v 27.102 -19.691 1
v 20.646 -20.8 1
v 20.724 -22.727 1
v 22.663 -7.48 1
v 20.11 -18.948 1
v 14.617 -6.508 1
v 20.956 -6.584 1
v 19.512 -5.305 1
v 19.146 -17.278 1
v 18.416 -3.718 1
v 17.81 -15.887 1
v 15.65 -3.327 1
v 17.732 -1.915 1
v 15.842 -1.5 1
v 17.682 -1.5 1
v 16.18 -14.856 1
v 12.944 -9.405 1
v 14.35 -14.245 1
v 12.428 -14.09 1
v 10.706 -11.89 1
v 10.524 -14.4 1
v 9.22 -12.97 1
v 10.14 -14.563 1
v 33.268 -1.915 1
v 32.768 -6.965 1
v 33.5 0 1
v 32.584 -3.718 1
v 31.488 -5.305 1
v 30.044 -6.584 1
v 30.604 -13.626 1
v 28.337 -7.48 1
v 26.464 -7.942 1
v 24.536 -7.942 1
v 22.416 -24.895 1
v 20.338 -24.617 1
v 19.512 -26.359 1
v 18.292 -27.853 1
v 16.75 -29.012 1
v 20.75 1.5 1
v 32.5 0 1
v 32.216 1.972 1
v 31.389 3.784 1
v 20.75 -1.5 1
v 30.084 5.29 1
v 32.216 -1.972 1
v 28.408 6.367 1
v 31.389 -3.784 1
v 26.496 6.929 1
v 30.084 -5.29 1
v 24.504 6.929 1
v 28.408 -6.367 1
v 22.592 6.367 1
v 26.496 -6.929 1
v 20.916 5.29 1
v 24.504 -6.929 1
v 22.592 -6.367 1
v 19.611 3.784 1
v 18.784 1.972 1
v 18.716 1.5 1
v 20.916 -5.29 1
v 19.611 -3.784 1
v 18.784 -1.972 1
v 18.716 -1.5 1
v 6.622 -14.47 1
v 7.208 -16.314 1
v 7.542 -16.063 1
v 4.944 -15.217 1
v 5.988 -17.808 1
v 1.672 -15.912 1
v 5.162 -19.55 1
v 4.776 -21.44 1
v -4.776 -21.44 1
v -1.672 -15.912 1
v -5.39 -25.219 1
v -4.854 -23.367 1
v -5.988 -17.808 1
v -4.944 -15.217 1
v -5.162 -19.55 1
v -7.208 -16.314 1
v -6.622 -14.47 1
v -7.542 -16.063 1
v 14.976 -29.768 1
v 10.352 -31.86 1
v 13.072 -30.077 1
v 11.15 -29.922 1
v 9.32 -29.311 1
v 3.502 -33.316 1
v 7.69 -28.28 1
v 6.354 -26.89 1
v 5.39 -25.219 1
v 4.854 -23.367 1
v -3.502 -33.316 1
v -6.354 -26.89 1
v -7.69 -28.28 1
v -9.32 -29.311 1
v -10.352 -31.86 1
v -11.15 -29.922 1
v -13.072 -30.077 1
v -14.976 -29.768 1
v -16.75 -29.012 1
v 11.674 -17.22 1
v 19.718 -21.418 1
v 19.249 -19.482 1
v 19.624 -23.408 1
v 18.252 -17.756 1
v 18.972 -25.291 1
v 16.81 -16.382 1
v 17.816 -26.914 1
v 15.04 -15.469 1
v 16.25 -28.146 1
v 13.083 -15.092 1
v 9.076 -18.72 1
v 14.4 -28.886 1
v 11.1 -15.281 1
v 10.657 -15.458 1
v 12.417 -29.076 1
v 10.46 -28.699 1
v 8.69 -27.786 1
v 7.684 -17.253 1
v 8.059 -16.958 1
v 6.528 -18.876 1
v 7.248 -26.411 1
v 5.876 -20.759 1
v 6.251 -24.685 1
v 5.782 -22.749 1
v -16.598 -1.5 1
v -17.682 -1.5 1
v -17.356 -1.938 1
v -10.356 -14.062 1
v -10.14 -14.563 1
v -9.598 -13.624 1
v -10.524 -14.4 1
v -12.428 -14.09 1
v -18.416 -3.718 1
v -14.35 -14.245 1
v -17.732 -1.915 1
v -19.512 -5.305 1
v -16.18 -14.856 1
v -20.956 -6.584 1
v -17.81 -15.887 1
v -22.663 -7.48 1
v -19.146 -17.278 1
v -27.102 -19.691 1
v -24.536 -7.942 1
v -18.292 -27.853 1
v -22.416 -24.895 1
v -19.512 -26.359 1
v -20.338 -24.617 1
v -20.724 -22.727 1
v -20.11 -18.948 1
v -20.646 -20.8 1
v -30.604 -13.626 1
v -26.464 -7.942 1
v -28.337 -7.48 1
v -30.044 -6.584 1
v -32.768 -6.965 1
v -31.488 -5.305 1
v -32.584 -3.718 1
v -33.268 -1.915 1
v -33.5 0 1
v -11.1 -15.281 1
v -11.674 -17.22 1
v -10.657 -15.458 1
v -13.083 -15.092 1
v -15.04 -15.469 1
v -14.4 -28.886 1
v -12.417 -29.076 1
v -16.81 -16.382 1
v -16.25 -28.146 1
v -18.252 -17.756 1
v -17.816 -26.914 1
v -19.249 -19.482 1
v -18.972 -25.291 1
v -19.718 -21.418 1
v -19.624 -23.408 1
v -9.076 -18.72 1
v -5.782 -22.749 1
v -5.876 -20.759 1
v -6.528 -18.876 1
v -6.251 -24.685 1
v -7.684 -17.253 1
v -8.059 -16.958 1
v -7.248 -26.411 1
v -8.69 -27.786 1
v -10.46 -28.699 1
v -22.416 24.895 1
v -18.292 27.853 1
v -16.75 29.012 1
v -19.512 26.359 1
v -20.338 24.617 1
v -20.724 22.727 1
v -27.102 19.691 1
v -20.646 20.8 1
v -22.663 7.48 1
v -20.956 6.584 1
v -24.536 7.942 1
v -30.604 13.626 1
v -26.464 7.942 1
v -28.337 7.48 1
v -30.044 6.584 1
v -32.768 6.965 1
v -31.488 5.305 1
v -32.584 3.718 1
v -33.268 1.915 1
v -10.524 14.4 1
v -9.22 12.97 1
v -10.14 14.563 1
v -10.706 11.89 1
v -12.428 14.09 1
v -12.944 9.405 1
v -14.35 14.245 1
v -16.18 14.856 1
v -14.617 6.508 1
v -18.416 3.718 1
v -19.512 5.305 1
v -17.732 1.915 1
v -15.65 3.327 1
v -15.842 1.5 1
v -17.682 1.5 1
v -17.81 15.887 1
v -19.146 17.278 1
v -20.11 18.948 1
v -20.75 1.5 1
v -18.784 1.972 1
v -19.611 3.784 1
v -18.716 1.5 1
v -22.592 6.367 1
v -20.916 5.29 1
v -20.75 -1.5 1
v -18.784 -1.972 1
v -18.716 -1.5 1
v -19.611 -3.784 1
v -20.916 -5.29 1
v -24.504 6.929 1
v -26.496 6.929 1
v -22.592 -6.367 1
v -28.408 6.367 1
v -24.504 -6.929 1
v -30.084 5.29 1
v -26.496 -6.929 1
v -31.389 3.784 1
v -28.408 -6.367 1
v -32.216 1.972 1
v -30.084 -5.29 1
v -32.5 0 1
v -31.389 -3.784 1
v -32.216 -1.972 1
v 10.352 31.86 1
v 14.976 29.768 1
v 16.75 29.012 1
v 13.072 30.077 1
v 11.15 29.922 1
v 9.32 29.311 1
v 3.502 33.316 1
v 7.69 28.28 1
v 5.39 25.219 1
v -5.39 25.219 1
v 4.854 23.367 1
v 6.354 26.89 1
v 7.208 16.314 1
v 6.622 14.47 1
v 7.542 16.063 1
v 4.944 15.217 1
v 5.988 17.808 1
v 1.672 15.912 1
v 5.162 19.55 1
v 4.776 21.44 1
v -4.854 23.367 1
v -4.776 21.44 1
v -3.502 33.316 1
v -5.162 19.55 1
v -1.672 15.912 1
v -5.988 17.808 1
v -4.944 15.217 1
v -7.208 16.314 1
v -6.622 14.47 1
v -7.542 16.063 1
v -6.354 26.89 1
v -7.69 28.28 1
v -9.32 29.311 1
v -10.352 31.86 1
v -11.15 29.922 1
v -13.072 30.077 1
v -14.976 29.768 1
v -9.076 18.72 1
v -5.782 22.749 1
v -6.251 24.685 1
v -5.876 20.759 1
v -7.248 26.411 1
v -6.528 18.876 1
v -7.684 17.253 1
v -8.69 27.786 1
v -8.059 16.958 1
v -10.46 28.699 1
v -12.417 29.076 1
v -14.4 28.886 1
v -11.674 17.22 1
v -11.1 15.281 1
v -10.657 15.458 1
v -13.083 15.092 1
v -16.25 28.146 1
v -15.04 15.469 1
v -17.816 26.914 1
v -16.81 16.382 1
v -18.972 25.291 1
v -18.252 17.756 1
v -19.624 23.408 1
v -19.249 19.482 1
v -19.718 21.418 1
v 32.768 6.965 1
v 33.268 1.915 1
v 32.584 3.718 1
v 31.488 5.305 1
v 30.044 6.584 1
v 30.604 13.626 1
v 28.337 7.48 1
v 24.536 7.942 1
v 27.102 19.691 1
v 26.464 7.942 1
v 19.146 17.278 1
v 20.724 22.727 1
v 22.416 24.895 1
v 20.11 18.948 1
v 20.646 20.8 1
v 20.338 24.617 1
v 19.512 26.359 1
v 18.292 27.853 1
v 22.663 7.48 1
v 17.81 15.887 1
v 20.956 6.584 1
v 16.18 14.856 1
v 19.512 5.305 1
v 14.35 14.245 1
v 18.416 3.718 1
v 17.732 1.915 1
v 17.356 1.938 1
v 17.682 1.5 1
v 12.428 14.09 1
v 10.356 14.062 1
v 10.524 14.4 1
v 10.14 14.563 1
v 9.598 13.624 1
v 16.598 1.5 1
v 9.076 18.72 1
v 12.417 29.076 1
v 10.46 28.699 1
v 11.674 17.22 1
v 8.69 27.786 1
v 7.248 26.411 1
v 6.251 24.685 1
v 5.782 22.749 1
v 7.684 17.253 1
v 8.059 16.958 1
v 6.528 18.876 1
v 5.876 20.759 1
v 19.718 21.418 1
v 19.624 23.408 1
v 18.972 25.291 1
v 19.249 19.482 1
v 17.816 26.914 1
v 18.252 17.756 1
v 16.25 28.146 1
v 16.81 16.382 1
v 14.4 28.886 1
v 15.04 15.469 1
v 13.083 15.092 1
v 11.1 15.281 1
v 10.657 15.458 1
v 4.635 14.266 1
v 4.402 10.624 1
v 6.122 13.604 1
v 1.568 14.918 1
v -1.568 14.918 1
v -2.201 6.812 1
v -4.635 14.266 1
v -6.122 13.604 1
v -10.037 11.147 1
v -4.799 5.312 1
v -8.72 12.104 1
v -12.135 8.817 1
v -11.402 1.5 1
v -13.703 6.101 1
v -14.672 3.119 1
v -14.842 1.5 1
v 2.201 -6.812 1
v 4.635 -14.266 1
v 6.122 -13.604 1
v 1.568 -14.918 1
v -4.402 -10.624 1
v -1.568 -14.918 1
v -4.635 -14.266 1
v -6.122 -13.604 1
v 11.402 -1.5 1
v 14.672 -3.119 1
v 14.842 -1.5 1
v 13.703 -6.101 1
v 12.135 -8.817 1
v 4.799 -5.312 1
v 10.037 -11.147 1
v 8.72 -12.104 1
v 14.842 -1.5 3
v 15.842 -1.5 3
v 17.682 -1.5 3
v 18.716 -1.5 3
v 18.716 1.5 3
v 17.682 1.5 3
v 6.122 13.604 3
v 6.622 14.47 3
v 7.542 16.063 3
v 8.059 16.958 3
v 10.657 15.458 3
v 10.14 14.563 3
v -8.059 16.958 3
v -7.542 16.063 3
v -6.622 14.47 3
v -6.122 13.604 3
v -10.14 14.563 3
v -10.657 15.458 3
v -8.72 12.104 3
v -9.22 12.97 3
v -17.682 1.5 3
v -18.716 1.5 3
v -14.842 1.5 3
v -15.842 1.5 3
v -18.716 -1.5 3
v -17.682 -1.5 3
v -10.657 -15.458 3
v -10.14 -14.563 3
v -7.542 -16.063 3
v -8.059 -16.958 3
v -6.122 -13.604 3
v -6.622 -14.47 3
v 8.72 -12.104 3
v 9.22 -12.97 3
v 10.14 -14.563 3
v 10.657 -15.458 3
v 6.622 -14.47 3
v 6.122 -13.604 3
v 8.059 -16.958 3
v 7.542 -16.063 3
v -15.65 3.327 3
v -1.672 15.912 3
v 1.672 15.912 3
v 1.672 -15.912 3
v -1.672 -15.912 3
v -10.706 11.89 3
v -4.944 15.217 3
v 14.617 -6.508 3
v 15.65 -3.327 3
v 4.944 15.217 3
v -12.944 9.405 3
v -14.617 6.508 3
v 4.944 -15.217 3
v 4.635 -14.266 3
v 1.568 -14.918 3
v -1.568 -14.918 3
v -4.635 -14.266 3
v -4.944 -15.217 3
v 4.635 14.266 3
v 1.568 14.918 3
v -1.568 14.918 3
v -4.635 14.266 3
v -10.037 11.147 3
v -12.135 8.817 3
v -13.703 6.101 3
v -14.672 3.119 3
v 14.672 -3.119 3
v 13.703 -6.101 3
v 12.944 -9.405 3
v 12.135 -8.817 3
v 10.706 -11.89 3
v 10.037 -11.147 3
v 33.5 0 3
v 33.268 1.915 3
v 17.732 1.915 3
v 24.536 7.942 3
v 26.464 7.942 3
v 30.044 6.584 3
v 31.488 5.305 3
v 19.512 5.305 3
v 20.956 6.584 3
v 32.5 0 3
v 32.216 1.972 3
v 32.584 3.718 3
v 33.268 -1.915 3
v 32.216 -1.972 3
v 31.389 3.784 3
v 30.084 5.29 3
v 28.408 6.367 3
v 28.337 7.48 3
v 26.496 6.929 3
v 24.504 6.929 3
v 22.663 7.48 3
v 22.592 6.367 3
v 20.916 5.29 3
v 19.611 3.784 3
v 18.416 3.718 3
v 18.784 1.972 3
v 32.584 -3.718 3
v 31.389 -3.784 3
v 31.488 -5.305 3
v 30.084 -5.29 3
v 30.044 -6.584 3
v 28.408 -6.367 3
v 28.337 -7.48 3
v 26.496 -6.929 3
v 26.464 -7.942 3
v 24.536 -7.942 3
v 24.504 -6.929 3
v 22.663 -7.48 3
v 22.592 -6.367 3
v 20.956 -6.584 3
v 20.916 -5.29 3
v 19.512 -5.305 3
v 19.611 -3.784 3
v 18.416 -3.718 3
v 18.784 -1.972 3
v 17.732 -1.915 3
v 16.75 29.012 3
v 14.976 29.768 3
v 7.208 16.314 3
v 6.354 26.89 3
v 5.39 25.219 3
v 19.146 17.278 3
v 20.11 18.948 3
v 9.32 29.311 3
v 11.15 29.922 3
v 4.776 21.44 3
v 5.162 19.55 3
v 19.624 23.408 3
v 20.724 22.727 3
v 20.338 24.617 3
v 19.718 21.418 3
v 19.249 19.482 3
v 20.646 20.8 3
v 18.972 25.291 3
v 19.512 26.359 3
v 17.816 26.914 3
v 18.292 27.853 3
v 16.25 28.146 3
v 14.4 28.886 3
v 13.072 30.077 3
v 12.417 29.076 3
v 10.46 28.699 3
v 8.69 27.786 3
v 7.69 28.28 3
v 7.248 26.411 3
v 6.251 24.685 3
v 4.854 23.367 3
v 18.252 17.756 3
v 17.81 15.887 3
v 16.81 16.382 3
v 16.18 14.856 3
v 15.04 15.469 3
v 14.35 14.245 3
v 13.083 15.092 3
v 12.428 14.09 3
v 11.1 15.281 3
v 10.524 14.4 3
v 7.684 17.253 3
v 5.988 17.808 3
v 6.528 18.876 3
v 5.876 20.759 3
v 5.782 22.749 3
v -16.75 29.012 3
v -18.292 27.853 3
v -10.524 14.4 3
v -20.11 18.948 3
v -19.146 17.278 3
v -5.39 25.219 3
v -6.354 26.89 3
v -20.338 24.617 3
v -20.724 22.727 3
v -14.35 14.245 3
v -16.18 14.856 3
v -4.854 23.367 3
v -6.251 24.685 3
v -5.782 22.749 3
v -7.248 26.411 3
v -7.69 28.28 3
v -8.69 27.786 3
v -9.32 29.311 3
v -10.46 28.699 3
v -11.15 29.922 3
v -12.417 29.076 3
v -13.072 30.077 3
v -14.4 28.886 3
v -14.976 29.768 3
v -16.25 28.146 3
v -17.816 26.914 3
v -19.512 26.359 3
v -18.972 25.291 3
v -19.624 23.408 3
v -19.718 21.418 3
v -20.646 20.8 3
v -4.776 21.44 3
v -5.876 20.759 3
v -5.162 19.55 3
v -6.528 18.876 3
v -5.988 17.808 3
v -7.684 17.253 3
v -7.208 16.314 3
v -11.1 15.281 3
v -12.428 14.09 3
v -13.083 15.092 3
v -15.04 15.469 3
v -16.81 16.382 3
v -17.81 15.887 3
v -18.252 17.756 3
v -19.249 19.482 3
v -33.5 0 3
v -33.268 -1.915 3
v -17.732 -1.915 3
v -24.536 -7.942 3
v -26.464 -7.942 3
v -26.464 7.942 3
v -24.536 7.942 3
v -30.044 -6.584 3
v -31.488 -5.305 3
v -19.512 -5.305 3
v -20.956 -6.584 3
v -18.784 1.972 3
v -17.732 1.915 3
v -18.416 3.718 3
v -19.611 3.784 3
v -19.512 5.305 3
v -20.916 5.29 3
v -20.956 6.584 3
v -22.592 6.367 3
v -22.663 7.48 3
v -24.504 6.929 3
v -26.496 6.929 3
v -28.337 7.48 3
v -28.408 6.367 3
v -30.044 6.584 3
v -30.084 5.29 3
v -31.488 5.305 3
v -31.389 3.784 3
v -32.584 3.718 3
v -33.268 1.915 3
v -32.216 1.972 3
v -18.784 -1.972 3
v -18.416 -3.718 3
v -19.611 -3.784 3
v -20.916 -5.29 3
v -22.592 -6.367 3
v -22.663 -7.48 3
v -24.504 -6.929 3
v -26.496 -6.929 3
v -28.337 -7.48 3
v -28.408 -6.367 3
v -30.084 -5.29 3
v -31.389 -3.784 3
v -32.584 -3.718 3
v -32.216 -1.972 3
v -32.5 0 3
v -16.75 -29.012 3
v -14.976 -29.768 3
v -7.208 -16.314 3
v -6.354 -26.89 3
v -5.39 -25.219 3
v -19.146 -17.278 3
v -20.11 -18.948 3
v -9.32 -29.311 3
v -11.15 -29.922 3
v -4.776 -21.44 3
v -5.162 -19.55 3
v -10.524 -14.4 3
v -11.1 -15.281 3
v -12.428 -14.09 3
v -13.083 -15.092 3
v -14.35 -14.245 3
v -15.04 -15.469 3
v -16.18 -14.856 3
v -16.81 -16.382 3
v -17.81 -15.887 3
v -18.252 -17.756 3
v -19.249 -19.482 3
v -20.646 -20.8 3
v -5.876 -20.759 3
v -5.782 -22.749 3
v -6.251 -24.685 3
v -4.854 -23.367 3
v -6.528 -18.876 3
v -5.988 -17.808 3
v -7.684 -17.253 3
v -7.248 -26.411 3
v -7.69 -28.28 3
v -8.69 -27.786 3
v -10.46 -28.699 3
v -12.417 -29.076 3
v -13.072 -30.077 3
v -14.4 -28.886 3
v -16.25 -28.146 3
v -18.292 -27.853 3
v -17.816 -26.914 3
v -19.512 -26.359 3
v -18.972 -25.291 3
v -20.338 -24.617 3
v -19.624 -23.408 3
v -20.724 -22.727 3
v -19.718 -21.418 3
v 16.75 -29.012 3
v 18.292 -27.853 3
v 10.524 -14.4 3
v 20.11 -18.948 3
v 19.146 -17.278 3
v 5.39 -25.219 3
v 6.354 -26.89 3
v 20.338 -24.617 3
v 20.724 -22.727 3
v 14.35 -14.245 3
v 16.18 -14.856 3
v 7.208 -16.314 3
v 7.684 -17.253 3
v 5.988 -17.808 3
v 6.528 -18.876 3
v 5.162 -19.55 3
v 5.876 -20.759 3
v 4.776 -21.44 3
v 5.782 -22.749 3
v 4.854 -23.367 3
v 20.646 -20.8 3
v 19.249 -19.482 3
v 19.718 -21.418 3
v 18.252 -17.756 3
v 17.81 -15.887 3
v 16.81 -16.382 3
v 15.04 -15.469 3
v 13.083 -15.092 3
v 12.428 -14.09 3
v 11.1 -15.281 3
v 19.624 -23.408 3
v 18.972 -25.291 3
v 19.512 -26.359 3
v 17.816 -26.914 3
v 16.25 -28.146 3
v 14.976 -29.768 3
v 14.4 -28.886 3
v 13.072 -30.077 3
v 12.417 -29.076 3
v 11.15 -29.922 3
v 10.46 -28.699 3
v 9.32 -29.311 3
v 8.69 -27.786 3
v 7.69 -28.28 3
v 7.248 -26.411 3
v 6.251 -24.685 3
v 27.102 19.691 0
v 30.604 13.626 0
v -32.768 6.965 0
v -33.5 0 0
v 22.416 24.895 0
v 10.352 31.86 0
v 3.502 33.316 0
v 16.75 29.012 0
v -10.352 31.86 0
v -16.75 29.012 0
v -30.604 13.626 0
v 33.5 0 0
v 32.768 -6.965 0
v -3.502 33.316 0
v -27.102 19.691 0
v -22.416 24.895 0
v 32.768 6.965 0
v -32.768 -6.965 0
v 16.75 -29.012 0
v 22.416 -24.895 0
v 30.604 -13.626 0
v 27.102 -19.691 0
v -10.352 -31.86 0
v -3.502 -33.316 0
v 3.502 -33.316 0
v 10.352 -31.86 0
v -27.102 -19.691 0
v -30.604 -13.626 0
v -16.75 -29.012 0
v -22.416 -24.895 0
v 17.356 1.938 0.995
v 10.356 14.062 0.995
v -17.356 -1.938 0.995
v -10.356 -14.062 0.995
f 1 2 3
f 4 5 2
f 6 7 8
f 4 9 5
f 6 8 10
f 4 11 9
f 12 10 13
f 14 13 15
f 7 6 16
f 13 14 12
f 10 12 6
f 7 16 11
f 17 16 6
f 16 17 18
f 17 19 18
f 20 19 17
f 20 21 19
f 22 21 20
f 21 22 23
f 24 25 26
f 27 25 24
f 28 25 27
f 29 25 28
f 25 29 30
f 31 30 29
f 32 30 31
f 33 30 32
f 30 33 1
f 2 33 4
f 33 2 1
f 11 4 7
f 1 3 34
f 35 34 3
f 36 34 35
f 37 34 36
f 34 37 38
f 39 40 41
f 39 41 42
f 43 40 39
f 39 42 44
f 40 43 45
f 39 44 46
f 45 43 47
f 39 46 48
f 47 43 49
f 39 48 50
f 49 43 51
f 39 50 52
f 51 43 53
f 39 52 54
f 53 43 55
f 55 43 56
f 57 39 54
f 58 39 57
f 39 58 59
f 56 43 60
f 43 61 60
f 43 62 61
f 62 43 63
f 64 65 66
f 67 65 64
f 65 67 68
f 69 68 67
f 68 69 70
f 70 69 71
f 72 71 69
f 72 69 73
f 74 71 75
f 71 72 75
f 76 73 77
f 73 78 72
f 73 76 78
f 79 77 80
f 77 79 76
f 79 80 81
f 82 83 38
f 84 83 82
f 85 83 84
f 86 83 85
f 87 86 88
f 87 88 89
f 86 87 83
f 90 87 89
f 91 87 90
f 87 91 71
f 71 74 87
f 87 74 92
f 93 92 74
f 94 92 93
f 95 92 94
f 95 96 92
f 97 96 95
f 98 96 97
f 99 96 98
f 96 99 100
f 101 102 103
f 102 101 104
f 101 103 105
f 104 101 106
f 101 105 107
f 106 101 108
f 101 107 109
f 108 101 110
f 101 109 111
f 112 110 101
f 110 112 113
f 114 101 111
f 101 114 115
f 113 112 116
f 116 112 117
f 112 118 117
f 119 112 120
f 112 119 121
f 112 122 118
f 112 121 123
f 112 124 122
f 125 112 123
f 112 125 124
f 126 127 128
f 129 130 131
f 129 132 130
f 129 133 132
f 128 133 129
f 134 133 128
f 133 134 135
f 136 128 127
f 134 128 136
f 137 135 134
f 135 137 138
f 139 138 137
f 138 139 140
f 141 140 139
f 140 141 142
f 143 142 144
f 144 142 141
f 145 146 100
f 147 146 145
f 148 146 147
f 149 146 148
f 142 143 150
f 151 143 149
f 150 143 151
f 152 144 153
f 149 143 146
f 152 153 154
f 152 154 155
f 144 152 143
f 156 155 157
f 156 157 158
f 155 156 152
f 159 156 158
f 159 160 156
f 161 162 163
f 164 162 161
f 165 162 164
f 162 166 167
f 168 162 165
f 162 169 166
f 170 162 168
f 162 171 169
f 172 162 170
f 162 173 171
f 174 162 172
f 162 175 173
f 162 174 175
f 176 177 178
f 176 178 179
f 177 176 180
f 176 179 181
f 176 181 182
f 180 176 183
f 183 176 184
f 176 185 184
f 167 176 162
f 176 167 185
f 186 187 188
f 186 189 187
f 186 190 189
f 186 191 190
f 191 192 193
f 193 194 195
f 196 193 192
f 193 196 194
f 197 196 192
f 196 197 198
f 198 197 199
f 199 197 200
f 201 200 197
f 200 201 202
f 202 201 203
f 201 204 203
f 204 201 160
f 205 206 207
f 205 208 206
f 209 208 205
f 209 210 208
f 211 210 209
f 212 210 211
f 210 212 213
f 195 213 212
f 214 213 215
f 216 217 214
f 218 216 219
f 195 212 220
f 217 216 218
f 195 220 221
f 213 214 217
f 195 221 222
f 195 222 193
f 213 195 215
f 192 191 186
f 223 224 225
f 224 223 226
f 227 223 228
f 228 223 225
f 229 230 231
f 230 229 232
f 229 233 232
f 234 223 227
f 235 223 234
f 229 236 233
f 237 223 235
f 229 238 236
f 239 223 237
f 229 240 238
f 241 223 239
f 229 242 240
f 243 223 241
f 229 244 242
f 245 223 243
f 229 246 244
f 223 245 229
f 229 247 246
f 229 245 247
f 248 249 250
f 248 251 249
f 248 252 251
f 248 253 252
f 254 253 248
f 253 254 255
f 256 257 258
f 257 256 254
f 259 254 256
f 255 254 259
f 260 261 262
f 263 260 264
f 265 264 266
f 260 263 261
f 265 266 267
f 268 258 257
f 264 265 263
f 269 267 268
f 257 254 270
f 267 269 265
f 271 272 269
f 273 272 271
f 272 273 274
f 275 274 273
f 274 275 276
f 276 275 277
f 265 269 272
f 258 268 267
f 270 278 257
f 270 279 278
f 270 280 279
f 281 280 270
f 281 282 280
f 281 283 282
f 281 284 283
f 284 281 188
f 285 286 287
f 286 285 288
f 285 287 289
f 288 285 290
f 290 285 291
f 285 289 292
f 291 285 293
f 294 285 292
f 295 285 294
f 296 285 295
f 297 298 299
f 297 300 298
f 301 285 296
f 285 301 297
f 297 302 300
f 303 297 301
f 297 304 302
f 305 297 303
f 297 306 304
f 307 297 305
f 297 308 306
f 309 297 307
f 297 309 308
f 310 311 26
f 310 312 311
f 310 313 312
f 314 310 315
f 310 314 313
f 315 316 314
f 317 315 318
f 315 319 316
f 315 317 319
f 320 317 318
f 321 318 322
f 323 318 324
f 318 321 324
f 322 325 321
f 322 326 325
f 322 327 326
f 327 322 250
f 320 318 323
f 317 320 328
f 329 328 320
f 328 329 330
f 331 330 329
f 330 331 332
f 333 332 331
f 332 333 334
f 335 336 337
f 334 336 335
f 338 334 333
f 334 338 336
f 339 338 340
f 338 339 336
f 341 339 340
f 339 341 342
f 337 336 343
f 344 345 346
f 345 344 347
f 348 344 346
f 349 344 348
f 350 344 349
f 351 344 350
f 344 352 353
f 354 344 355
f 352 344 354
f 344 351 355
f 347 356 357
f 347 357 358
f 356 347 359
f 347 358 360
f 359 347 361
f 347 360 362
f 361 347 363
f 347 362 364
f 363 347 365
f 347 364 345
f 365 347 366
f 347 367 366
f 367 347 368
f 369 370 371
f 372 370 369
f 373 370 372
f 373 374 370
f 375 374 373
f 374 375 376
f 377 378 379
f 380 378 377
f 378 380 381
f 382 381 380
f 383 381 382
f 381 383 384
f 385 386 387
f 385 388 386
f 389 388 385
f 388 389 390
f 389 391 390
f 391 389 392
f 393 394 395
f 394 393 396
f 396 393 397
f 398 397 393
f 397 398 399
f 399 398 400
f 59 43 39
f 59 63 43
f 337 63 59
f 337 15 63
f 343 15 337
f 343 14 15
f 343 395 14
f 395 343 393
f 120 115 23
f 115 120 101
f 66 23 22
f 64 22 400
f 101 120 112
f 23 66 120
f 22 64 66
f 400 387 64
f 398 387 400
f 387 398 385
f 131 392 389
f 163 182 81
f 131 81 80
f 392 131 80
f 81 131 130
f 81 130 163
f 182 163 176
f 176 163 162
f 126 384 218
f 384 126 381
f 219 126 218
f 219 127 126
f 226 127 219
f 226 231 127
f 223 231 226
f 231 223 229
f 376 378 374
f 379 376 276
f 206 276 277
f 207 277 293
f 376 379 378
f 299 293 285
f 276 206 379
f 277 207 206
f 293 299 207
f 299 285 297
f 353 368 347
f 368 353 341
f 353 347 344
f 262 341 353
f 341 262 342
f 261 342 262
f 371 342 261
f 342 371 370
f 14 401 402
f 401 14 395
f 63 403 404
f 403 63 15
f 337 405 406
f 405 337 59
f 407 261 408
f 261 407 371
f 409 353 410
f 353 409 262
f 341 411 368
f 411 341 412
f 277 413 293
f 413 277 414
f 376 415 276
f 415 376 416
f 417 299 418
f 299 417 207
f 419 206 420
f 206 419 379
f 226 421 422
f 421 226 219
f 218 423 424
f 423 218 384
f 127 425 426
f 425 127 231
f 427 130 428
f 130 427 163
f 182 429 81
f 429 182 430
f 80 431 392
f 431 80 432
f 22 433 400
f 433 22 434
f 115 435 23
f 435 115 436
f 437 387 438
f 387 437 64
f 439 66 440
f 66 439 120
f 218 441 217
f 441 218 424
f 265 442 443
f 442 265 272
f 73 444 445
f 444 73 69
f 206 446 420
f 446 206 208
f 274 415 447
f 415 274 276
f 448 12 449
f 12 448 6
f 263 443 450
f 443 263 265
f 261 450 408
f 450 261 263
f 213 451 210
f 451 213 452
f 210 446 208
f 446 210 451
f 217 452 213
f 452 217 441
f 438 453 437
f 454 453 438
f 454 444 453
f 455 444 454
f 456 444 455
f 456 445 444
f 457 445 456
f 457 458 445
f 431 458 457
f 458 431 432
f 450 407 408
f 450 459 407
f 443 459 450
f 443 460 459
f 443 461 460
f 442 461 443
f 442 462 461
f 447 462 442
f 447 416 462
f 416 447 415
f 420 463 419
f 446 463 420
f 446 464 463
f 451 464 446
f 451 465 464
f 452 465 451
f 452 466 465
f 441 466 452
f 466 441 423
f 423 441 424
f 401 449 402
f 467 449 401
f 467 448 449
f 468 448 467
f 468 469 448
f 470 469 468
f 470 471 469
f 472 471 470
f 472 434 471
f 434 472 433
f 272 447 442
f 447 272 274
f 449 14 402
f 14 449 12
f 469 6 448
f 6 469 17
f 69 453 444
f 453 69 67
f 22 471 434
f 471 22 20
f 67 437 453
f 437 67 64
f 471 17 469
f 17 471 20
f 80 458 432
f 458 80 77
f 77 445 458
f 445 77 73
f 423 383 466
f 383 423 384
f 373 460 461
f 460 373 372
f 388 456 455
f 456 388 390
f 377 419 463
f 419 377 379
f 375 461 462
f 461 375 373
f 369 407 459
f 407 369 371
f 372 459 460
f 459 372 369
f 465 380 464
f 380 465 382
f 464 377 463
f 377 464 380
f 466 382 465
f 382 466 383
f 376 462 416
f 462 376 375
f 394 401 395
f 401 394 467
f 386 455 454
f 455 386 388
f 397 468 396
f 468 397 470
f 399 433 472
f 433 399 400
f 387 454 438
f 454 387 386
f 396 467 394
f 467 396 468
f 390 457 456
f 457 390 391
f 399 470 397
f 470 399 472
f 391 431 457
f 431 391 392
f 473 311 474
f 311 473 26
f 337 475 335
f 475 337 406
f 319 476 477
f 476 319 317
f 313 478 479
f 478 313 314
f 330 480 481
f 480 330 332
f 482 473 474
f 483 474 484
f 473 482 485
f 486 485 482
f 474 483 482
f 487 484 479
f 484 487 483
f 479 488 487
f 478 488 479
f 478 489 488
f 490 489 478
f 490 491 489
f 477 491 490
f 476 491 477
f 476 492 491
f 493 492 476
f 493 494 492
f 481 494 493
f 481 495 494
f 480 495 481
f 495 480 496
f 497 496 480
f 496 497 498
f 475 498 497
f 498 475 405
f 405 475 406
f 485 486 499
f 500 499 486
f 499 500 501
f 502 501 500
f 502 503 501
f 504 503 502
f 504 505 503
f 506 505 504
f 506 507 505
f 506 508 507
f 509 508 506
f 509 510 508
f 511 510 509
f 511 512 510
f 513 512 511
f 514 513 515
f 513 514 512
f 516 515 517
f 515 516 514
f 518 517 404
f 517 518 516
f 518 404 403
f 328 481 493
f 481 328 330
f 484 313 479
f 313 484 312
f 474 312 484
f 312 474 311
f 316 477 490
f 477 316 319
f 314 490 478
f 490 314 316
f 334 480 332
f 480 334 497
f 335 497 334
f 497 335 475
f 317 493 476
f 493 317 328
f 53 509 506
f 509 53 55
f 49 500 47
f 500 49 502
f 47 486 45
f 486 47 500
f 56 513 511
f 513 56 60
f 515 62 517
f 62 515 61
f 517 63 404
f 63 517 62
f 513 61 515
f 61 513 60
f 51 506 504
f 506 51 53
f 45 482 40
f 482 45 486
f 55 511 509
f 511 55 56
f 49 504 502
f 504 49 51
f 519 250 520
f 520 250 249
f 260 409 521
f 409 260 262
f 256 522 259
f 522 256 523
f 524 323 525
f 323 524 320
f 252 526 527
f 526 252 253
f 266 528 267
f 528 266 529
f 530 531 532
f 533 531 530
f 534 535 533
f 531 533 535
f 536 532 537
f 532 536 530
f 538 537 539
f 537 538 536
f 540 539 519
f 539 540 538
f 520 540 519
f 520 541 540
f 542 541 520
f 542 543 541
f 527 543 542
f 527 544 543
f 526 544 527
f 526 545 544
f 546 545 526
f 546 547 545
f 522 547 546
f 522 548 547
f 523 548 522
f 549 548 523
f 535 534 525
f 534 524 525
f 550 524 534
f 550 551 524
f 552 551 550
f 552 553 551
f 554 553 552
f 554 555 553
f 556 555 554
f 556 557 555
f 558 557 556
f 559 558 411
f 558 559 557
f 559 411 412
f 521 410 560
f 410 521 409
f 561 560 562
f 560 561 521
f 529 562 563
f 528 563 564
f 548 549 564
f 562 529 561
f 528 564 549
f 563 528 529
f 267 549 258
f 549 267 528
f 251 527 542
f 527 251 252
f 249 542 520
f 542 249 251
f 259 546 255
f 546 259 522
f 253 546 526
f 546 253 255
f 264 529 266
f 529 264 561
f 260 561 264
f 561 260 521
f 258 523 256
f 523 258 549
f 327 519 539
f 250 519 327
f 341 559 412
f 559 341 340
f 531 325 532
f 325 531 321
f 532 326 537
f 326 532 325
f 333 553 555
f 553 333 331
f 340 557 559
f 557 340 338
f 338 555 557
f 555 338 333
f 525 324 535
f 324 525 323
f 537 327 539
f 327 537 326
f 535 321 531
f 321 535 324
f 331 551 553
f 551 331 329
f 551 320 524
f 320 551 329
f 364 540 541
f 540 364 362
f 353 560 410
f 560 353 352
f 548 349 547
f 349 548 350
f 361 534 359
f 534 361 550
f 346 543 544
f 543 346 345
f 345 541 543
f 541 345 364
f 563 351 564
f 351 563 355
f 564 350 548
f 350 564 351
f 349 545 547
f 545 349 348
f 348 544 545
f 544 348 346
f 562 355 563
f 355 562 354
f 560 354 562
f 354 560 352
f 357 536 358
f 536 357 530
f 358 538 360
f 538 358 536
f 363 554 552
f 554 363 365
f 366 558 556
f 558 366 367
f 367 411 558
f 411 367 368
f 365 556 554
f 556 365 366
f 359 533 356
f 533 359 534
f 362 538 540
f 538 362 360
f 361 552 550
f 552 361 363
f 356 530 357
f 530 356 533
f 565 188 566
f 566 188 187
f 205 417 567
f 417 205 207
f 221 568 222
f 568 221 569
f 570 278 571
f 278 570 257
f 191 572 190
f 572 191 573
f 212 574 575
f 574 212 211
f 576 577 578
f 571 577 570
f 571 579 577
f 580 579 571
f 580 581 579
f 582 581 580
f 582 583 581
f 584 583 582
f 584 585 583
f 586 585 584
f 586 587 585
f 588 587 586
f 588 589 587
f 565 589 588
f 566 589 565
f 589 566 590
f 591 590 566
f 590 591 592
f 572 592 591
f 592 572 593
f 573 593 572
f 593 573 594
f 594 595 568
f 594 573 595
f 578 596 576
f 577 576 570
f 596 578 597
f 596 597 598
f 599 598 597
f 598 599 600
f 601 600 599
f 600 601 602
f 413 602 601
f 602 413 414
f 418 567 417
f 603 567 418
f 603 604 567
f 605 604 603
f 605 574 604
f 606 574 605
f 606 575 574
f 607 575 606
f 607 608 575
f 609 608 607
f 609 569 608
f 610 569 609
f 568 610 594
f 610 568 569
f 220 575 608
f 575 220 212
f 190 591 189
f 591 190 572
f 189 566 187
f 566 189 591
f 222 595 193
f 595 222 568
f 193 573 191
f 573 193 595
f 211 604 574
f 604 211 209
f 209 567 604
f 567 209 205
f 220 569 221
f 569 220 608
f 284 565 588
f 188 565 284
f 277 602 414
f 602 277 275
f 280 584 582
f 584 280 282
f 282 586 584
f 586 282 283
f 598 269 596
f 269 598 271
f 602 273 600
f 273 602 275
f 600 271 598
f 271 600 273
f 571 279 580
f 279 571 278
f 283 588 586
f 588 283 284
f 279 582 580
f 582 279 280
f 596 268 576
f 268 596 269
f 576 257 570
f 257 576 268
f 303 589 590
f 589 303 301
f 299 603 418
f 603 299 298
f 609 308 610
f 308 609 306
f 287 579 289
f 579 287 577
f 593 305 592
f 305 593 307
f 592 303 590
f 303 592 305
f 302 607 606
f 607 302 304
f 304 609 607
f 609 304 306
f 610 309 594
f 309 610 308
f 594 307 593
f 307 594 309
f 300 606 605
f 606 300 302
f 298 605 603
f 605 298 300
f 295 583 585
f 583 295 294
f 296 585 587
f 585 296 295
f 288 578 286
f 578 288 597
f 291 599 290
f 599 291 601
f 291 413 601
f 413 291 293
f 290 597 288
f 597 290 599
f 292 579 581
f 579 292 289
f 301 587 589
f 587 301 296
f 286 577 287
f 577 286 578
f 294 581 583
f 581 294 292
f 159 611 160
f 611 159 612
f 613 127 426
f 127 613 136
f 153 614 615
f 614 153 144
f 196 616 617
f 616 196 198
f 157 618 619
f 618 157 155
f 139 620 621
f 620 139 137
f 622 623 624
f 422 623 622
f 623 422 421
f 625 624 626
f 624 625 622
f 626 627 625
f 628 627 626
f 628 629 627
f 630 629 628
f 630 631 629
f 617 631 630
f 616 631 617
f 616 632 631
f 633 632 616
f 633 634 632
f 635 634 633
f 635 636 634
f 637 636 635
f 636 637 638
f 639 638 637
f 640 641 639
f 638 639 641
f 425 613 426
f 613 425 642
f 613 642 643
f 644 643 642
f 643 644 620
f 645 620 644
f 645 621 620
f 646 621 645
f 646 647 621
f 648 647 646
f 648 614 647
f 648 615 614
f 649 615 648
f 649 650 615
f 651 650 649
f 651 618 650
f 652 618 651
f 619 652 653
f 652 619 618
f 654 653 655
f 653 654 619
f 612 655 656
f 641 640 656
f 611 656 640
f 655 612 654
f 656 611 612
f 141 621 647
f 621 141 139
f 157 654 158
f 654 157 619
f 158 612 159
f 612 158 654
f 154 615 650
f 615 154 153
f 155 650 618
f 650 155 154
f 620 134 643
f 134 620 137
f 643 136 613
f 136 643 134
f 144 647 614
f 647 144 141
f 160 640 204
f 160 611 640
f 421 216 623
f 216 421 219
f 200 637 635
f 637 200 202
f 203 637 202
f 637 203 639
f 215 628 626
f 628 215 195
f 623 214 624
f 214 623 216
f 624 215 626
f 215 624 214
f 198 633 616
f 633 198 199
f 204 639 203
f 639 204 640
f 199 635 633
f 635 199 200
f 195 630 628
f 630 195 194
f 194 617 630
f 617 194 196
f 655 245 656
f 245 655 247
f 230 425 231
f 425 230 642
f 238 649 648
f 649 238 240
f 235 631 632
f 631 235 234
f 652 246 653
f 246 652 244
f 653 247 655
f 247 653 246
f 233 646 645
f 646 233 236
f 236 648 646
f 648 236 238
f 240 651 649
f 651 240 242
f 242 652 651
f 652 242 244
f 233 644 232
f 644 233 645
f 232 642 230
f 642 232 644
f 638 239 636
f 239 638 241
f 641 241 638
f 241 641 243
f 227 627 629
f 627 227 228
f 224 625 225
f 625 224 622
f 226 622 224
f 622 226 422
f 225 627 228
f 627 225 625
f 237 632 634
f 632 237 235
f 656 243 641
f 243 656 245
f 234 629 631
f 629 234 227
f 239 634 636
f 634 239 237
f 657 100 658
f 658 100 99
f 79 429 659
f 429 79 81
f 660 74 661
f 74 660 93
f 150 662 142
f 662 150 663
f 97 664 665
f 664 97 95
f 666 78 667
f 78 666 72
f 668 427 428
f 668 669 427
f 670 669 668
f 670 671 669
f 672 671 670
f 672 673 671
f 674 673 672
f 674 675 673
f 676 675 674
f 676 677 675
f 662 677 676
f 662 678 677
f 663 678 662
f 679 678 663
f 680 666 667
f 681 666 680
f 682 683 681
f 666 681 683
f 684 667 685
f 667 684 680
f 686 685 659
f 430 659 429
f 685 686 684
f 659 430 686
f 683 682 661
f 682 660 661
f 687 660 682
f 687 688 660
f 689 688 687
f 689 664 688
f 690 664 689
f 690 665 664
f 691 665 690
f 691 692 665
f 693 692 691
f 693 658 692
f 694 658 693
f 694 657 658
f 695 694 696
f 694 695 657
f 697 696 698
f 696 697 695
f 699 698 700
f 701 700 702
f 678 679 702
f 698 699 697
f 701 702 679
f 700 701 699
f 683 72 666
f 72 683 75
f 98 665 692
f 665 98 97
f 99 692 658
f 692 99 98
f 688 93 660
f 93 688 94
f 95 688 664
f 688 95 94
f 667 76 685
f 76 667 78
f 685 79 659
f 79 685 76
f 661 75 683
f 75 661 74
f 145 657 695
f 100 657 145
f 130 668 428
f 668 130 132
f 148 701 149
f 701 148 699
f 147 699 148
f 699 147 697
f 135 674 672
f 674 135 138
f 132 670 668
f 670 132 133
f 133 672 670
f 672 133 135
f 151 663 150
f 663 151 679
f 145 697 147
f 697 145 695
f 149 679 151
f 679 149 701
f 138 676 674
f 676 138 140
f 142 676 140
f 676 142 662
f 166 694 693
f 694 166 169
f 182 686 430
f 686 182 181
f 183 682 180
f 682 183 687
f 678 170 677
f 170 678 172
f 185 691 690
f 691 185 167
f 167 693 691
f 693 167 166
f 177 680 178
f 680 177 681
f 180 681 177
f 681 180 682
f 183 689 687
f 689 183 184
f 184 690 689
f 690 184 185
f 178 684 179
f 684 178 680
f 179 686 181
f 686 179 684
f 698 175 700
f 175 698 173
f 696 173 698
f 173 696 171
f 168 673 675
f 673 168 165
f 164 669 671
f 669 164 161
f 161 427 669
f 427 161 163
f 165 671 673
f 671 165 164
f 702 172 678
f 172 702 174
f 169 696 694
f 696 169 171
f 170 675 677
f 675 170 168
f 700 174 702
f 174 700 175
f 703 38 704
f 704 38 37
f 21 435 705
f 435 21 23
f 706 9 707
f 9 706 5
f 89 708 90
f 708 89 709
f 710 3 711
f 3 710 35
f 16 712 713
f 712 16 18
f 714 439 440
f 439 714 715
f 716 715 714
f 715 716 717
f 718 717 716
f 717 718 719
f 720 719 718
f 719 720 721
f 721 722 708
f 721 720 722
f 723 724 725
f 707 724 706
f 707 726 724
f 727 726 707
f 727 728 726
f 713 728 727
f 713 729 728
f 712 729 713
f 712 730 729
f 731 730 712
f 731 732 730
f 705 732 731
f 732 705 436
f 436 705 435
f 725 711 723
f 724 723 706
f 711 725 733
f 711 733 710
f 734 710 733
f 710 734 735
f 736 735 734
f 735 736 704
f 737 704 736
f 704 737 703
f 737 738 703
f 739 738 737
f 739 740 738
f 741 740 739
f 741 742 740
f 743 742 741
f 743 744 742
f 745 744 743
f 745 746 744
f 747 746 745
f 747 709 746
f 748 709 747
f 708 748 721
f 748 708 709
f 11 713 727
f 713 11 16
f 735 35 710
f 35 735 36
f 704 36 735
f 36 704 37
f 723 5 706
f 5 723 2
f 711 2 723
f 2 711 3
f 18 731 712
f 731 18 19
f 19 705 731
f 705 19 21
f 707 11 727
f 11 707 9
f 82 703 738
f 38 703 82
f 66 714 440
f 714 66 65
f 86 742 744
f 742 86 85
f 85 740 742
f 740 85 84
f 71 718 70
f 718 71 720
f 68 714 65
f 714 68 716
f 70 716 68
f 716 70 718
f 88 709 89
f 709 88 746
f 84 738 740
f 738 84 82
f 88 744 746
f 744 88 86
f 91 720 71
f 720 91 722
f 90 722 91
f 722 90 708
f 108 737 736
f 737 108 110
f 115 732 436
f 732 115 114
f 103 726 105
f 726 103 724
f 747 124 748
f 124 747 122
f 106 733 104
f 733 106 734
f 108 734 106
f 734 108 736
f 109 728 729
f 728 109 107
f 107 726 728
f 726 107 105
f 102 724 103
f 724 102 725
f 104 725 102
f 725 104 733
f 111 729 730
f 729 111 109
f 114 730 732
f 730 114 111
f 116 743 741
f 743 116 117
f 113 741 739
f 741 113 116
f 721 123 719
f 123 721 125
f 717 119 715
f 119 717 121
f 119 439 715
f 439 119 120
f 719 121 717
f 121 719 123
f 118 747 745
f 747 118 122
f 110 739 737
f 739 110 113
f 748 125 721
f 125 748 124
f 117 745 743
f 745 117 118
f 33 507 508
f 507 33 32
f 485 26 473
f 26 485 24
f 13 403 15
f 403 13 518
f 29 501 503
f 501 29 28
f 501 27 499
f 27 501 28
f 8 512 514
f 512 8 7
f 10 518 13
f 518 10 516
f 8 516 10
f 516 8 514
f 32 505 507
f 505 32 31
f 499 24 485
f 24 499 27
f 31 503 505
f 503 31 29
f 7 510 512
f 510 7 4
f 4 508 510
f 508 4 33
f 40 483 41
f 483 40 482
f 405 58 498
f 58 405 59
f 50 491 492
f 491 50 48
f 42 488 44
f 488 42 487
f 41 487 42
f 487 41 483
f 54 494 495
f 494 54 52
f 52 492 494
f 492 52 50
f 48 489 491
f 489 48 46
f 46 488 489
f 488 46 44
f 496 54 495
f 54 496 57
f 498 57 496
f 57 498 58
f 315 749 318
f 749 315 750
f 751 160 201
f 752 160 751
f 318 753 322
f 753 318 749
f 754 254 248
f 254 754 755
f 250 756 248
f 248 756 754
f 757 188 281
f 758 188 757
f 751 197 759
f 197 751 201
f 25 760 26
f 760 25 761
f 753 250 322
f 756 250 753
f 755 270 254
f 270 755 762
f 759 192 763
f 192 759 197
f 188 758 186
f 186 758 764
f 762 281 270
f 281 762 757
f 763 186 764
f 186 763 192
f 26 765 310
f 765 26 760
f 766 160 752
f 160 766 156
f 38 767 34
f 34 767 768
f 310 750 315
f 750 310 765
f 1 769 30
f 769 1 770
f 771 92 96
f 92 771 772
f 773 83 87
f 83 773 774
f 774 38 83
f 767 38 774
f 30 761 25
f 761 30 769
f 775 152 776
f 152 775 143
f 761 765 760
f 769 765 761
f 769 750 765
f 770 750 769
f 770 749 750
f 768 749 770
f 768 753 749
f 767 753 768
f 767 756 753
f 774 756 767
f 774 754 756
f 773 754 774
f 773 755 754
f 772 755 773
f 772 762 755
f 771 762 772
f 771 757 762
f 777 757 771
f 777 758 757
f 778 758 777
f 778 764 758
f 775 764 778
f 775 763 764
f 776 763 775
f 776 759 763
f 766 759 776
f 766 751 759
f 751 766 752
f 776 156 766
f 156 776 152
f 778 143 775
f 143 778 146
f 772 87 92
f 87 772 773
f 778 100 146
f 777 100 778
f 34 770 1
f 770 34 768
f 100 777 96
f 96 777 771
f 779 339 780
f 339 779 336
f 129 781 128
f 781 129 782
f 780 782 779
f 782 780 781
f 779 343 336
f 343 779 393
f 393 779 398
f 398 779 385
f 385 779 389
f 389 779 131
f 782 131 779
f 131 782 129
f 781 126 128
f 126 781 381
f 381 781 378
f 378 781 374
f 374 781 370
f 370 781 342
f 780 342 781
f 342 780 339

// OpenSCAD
/********** MODULES **************/
module gemma(){
    color("Black")
    cylinder(r = 14, h = 7);
}

module gemma_hole(){
   translate([0,0,1]){
        difference(){
            cylinder(r = 16, h = 2);
            cylinder(r = 15, h = 2.01);
        }
    }
}

module board(){
       cylinder(r = 33.5, h = 1);
       
    
}

module snap(){
    color("Grey")
    cylinder(r=6, h=4.5);
}

module snaps(){
    translate([0, 0, 7])
    for(r=[0:(360/6):360]){
        rotate([0,0,r]){
            translate([27.5, 0, 0]){
                snap();
            }
        }
    }
}

module snap_hole(){
    difference(){
        cylinder(r=8, h=2);
        cylinder(r=7, h=3.1);
    }
}

module snap_holes(){
    translate([0, 0, 1])
    for(r=[0:(360/6):360]){
        rotate([0,0,r]){
            translate([25.5, 0, 0]){
                snap_hole();
            }
        }
    }
}

module wire_trace(){
    translate([12,0,3])
        cube([17.5, 3, 4], center=true);
}


module wire_traces(){
    for(r=[0:(360/6):360]){
        rotate([0,0,r]){
            wire_trace();
            
        }
    }
}

module usb_cutout(){
        translate([0,0,2])
            rotate([0,0,30])
                cube([32, 14, 2.01], center=true);
}


/********** RENDER **************/

//translate([0,0,2.5])
//gemma();
    difference(){
        union(){
            board();
            gemma_hole();
            snap_holes();
            
        }
    
        usb_cutout();
        wire_traces();
        
    }
    


//gemma();
//snaps();

//snaps();
